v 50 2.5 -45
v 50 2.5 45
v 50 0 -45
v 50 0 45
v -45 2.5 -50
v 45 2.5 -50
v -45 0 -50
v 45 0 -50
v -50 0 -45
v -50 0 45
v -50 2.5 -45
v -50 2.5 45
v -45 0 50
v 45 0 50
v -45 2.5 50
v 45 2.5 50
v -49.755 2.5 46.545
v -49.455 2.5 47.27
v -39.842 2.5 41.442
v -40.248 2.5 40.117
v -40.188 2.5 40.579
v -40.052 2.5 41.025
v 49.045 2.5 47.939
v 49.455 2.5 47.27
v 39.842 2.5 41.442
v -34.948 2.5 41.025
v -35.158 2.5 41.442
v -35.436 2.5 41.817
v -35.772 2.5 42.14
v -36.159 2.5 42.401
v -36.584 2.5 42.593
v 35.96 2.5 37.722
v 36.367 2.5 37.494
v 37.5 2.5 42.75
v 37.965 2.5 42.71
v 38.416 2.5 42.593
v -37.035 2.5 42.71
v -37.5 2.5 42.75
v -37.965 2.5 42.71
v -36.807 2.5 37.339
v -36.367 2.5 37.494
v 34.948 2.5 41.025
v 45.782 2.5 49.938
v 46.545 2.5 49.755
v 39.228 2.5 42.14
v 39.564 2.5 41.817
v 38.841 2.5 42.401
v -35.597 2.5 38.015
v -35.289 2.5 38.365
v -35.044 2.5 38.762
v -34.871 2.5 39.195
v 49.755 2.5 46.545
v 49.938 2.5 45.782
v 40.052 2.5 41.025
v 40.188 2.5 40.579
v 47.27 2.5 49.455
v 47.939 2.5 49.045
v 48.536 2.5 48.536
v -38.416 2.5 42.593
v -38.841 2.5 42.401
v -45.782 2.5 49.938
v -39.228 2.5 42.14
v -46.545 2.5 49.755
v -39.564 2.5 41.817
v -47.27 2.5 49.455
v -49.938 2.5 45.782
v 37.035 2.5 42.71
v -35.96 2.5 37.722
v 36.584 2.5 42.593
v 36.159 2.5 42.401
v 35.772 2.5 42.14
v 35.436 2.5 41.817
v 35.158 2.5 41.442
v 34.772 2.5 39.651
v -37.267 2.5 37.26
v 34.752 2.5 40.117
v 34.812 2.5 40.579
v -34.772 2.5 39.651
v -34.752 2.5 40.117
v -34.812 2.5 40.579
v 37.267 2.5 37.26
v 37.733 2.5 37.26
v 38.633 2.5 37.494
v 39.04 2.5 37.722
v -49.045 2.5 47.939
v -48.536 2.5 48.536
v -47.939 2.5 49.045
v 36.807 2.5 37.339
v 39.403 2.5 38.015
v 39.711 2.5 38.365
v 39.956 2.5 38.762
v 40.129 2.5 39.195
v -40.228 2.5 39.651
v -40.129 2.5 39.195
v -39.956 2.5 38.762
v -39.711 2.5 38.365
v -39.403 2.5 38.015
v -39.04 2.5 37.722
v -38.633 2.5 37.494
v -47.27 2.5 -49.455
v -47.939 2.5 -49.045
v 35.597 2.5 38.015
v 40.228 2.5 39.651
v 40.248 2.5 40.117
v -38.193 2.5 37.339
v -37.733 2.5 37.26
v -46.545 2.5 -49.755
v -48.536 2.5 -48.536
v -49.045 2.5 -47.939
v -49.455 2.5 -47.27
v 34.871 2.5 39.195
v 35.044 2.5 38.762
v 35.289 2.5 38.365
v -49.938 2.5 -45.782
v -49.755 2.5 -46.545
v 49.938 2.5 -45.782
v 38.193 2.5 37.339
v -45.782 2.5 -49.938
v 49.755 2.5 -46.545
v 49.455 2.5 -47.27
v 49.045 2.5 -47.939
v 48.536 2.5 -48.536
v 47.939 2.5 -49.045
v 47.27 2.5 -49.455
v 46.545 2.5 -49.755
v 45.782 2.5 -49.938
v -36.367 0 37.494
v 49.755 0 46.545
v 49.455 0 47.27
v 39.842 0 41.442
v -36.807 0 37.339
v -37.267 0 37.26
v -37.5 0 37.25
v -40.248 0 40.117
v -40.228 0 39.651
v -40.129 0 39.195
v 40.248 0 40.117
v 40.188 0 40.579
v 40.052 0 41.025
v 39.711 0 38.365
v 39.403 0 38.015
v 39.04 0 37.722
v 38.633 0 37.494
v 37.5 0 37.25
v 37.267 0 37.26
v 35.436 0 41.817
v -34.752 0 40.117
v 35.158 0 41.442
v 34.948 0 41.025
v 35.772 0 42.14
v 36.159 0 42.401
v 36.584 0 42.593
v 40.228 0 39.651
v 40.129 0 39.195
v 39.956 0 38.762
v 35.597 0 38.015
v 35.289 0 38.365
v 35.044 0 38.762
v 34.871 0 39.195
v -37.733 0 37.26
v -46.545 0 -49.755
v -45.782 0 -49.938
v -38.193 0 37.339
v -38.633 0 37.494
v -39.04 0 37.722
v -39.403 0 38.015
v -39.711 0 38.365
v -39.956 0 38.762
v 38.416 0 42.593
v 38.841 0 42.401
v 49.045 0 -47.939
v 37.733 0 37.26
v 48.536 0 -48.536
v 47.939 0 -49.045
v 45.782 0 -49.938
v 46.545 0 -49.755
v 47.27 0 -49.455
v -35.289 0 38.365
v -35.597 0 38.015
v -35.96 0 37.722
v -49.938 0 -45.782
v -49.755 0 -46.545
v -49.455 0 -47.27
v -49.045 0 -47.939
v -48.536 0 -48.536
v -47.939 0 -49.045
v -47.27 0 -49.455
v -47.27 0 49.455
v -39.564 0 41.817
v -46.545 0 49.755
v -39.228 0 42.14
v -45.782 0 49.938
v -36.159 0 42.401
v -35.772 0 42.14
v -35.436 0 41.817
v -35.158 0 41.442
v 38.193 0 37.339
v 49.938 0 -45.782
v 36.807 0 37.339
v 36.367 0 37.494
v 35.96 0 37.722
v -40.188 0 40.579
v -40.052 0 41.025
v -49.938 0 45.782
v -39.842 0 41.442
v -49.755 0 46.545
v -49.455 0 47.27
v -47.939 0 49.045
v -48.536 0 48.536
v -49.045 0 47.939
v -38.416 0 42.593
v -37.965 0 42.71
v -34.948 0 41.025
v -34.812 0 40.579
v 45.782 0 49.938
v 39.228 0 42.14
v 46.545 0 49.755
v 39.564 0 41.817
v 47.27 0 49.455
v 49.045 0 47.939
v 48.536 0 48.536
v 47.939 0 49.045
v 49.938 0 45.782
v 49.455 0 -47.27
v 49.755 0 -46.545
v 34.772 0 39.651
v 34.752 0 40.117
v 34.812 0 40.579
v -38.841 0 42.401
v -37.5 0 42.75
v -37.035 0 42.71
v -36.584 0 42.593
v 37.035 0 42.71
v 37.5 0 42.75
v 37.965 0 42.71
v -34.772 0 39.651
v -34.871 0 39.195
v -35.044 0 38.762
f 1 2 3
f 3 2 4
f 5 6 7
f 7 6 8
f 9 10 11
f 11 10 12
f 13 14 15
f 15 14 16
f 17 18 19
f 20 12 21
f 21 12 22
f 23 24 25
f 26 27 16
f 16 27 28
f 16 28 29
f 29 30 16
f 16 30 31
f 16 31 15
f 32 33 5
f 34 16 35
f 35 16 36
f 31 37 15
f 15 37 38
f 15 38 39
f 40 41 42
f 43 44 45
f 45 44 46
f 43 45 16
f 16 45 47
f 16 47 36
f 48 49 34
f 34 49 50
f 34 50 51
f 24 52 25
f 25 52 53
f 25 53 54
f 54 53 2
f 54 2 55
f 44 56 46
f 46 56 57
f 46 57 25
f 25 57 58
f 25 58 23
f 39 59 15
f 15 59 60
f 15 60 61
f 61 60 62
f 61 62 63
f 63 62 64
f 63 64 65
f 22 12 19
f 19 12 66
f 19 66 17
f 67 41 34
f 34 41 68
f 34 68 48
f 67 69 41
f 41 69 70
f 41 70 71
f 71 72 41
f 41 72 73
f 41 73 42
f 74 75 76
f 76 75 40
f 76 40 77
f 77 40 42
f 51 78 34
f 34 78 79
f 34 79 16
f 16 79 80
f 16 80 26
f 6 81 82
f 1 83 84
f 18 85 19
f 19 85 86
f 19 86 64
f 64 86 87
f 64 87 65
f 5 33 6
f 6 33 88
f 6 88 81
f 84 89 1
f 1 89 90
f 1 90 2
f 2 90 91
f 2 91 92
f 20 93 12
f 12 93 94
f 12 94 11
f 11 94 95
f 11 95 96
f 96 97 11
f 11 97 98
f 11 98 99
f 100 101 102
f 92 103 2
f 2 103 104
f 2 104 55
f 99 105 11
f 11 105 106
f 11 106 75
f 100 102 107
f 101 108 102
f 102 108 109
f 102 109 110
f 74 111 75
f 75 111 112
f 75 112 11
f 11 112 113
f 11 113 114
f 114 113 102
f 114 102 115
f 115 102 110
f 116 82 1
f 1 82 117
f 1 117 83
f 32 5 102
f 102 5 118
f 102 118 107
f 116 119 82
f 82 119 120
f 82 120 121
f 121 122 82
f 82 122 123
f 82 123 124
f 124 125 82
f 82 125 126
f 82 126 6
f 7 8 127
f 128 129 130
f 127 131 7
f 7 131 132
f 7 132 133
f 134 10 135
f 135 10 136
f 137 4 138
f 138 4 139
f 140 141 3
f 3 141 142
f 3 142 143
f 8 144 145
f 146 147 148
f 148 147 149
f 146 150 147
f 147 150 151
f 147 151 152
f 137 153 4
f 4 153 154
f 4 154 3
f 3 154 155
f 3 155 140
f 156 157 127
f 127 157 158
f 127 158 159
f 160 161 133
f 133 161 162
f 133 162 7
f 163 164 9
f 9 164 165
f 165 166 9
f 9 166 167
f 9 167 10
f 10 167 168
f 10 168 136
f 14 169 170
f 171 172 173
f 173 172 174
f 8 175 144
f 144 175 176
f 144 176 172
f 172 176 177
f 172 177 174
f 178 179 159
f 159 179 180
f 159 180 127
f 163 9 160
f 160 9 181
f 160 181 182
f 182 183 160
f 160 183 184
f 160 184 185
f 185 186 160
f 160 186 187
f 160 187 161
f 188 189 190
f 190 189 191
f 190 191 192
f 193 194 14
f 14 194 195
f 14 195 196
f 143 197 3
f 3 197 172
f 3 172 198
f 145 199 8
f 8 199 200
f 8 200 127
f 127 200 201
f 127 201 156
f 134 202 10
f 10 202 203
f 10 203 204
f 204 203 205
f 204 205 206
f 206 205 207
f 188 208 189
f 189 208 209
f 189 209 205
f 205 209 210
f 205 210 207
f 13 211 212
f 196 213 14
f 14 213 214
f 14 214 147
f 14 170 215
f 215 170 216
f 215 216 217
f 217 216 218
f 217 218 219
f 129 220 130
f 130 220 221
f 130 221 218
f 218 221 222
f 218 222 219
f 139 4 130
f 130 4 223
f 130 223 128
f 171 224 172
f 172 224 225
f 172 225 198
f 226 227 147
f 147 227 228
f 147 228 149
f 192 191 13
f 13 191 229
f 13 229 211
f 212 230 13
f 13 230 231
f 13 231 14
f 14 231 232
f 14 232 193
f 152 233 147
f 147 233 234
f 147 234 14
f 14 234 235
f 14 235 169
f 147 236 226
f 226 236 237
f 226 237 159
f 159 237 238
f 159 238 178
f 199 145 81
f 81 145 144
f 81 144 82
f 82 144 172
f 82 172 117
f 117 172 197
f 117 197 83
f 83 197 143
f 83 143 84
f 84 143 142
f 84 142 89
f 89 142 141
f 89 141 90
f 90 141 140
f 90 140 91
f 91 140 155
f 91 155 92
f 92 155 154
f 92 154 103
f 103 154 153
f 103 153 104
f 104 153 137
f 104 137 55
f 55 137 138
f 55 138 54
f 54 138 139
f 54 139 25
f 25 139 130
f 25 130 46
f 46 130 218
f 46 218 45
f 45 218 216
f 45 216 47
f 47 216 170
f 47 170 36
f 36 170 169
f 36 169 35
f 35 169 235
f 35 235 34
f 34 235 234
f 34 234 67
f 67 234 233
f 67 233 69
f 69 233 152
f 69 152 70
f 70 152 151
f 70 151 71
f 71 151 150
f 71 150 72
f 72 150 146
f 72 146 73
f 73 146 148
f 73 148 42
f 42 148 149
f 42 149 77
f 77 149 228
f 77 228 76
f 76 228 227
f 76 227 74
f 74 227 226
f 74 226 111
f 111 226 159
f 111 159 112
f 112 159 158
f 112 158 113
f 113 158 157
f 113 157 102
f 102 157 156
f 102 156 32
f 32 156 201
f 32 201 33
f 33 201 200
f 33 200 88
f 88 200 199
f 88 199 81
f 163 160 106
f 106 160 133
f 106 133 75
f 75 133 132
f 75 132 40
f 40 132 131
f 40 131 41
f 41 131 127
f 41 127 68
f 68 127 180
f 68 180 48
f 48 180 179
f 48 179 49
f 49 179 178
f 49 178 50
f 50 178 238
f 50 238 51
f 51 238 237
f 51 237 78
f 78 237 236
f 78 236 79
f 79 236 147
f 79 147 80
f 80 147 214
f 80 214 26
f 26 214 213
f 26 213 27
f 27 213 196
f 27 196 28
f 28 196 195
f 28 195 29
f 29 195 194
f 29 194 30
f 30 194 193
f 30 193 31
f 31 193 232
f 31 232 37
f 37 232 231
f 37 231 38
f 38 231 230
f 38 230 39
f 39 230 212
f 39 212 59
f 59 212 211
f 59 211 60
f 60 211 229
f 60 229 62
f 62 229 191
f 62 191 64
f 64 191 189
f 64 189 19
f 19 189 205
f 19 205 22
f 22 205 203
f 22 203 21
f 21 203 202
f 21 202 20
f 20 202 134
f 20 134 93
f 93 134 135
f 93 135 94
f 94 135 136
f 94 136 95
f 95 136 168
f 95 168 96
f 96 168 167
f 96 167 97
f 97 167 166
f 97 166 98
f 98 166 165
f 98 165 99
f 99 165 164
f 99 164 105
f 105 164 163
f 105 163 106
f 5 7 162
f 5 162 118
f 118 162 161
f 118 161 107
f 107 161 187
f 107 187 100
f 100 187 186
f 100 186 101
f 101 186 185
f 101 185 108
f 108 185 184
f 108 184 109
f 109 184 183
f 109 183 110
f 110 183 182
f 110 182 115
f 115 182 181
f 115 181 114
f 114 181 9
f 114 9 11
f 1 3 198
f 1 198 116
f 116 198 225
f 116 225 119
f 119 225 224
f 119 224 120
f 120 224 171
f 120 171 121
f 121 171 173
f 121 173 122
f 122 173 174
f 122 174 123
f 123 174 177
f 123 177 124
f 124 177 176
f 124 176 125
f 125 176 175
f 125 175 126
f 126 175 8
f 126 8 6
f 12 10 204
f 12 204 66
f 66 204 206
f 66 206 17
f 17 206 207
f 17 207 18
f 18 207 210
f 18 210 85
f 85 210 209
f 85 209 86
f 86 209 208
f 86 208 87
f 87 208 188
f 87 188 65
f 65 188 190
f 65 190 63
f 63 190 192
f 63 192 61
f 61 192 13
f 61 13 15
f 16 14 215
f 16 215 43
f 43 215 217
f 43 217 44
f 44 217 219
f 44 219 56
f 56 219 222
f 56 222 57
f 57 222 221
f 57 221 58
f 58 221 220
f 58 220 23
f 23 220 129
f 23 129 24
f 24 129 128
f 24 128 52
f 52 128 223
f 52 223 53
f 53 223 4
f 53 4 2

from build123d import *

# Parameters (mm, degrees)
SKETCH1_W                = 100
SKETCH1_H                = 100
BOSS_EXTRUDE1_DEPTH      = 2.5
M5_CLEARANCE_HOLE1_D     = 5.5
M5_CLEARANCE_HOLE1_DEPTH = 12
M5_CLEARANCE_HOLE1_TIP   = 1.652366702
FILLET1_R                = 5


with BuildPart() as part:
    # Sketch1 → Boss-Extrude1 (new body)
    with BuildSketch(Plane(origin=(0, 0, 0), x_dir=(1, 0, 0), z_dir=(0, 1, 0))):
        Rectangle(SKETCH1_W, SKETCH1_H)
    extrude(amount=BOSS_EXTRUDE1_DEPTH)

    # M5 Clearance Hole1
    with Locations(Plane(origin=(0, 2.5, 0), x_dir=(1, 0, 0), z_dir=(0, 1, 0))):
        with Locations((-37.5, -40), (37.5, -40)):
            Hole(M5_CLEARANCE_HOLE1_D / 2, depth=M5_CLEARANCE_HOLE1_DEPTH)
            with Locations((0, 0, -(M5_CLEARANCE_HOLE1_DEPTH + M5_CLEARANCE_HOLE1_TIP / 2))):  # 118° drill point
                Cone(0, M5_CLEARANCE_HOLE1_D / 2, M5_CLEARANCE_HOLE1_TIP, mode=Mode.SUBTRACT)

    # Fillet1
    fillet1_edges = [part.edges().sort_by_distance(p)[0] for p in [
        (50, 1.25, 50),
        (-50, 1.25, 50),
        (-50, 1.25, -50),
        (50, 1.25, -50),
    ]]
    fillet(fillet1_edges, radius=FILLET1_R)


solid = part.part
